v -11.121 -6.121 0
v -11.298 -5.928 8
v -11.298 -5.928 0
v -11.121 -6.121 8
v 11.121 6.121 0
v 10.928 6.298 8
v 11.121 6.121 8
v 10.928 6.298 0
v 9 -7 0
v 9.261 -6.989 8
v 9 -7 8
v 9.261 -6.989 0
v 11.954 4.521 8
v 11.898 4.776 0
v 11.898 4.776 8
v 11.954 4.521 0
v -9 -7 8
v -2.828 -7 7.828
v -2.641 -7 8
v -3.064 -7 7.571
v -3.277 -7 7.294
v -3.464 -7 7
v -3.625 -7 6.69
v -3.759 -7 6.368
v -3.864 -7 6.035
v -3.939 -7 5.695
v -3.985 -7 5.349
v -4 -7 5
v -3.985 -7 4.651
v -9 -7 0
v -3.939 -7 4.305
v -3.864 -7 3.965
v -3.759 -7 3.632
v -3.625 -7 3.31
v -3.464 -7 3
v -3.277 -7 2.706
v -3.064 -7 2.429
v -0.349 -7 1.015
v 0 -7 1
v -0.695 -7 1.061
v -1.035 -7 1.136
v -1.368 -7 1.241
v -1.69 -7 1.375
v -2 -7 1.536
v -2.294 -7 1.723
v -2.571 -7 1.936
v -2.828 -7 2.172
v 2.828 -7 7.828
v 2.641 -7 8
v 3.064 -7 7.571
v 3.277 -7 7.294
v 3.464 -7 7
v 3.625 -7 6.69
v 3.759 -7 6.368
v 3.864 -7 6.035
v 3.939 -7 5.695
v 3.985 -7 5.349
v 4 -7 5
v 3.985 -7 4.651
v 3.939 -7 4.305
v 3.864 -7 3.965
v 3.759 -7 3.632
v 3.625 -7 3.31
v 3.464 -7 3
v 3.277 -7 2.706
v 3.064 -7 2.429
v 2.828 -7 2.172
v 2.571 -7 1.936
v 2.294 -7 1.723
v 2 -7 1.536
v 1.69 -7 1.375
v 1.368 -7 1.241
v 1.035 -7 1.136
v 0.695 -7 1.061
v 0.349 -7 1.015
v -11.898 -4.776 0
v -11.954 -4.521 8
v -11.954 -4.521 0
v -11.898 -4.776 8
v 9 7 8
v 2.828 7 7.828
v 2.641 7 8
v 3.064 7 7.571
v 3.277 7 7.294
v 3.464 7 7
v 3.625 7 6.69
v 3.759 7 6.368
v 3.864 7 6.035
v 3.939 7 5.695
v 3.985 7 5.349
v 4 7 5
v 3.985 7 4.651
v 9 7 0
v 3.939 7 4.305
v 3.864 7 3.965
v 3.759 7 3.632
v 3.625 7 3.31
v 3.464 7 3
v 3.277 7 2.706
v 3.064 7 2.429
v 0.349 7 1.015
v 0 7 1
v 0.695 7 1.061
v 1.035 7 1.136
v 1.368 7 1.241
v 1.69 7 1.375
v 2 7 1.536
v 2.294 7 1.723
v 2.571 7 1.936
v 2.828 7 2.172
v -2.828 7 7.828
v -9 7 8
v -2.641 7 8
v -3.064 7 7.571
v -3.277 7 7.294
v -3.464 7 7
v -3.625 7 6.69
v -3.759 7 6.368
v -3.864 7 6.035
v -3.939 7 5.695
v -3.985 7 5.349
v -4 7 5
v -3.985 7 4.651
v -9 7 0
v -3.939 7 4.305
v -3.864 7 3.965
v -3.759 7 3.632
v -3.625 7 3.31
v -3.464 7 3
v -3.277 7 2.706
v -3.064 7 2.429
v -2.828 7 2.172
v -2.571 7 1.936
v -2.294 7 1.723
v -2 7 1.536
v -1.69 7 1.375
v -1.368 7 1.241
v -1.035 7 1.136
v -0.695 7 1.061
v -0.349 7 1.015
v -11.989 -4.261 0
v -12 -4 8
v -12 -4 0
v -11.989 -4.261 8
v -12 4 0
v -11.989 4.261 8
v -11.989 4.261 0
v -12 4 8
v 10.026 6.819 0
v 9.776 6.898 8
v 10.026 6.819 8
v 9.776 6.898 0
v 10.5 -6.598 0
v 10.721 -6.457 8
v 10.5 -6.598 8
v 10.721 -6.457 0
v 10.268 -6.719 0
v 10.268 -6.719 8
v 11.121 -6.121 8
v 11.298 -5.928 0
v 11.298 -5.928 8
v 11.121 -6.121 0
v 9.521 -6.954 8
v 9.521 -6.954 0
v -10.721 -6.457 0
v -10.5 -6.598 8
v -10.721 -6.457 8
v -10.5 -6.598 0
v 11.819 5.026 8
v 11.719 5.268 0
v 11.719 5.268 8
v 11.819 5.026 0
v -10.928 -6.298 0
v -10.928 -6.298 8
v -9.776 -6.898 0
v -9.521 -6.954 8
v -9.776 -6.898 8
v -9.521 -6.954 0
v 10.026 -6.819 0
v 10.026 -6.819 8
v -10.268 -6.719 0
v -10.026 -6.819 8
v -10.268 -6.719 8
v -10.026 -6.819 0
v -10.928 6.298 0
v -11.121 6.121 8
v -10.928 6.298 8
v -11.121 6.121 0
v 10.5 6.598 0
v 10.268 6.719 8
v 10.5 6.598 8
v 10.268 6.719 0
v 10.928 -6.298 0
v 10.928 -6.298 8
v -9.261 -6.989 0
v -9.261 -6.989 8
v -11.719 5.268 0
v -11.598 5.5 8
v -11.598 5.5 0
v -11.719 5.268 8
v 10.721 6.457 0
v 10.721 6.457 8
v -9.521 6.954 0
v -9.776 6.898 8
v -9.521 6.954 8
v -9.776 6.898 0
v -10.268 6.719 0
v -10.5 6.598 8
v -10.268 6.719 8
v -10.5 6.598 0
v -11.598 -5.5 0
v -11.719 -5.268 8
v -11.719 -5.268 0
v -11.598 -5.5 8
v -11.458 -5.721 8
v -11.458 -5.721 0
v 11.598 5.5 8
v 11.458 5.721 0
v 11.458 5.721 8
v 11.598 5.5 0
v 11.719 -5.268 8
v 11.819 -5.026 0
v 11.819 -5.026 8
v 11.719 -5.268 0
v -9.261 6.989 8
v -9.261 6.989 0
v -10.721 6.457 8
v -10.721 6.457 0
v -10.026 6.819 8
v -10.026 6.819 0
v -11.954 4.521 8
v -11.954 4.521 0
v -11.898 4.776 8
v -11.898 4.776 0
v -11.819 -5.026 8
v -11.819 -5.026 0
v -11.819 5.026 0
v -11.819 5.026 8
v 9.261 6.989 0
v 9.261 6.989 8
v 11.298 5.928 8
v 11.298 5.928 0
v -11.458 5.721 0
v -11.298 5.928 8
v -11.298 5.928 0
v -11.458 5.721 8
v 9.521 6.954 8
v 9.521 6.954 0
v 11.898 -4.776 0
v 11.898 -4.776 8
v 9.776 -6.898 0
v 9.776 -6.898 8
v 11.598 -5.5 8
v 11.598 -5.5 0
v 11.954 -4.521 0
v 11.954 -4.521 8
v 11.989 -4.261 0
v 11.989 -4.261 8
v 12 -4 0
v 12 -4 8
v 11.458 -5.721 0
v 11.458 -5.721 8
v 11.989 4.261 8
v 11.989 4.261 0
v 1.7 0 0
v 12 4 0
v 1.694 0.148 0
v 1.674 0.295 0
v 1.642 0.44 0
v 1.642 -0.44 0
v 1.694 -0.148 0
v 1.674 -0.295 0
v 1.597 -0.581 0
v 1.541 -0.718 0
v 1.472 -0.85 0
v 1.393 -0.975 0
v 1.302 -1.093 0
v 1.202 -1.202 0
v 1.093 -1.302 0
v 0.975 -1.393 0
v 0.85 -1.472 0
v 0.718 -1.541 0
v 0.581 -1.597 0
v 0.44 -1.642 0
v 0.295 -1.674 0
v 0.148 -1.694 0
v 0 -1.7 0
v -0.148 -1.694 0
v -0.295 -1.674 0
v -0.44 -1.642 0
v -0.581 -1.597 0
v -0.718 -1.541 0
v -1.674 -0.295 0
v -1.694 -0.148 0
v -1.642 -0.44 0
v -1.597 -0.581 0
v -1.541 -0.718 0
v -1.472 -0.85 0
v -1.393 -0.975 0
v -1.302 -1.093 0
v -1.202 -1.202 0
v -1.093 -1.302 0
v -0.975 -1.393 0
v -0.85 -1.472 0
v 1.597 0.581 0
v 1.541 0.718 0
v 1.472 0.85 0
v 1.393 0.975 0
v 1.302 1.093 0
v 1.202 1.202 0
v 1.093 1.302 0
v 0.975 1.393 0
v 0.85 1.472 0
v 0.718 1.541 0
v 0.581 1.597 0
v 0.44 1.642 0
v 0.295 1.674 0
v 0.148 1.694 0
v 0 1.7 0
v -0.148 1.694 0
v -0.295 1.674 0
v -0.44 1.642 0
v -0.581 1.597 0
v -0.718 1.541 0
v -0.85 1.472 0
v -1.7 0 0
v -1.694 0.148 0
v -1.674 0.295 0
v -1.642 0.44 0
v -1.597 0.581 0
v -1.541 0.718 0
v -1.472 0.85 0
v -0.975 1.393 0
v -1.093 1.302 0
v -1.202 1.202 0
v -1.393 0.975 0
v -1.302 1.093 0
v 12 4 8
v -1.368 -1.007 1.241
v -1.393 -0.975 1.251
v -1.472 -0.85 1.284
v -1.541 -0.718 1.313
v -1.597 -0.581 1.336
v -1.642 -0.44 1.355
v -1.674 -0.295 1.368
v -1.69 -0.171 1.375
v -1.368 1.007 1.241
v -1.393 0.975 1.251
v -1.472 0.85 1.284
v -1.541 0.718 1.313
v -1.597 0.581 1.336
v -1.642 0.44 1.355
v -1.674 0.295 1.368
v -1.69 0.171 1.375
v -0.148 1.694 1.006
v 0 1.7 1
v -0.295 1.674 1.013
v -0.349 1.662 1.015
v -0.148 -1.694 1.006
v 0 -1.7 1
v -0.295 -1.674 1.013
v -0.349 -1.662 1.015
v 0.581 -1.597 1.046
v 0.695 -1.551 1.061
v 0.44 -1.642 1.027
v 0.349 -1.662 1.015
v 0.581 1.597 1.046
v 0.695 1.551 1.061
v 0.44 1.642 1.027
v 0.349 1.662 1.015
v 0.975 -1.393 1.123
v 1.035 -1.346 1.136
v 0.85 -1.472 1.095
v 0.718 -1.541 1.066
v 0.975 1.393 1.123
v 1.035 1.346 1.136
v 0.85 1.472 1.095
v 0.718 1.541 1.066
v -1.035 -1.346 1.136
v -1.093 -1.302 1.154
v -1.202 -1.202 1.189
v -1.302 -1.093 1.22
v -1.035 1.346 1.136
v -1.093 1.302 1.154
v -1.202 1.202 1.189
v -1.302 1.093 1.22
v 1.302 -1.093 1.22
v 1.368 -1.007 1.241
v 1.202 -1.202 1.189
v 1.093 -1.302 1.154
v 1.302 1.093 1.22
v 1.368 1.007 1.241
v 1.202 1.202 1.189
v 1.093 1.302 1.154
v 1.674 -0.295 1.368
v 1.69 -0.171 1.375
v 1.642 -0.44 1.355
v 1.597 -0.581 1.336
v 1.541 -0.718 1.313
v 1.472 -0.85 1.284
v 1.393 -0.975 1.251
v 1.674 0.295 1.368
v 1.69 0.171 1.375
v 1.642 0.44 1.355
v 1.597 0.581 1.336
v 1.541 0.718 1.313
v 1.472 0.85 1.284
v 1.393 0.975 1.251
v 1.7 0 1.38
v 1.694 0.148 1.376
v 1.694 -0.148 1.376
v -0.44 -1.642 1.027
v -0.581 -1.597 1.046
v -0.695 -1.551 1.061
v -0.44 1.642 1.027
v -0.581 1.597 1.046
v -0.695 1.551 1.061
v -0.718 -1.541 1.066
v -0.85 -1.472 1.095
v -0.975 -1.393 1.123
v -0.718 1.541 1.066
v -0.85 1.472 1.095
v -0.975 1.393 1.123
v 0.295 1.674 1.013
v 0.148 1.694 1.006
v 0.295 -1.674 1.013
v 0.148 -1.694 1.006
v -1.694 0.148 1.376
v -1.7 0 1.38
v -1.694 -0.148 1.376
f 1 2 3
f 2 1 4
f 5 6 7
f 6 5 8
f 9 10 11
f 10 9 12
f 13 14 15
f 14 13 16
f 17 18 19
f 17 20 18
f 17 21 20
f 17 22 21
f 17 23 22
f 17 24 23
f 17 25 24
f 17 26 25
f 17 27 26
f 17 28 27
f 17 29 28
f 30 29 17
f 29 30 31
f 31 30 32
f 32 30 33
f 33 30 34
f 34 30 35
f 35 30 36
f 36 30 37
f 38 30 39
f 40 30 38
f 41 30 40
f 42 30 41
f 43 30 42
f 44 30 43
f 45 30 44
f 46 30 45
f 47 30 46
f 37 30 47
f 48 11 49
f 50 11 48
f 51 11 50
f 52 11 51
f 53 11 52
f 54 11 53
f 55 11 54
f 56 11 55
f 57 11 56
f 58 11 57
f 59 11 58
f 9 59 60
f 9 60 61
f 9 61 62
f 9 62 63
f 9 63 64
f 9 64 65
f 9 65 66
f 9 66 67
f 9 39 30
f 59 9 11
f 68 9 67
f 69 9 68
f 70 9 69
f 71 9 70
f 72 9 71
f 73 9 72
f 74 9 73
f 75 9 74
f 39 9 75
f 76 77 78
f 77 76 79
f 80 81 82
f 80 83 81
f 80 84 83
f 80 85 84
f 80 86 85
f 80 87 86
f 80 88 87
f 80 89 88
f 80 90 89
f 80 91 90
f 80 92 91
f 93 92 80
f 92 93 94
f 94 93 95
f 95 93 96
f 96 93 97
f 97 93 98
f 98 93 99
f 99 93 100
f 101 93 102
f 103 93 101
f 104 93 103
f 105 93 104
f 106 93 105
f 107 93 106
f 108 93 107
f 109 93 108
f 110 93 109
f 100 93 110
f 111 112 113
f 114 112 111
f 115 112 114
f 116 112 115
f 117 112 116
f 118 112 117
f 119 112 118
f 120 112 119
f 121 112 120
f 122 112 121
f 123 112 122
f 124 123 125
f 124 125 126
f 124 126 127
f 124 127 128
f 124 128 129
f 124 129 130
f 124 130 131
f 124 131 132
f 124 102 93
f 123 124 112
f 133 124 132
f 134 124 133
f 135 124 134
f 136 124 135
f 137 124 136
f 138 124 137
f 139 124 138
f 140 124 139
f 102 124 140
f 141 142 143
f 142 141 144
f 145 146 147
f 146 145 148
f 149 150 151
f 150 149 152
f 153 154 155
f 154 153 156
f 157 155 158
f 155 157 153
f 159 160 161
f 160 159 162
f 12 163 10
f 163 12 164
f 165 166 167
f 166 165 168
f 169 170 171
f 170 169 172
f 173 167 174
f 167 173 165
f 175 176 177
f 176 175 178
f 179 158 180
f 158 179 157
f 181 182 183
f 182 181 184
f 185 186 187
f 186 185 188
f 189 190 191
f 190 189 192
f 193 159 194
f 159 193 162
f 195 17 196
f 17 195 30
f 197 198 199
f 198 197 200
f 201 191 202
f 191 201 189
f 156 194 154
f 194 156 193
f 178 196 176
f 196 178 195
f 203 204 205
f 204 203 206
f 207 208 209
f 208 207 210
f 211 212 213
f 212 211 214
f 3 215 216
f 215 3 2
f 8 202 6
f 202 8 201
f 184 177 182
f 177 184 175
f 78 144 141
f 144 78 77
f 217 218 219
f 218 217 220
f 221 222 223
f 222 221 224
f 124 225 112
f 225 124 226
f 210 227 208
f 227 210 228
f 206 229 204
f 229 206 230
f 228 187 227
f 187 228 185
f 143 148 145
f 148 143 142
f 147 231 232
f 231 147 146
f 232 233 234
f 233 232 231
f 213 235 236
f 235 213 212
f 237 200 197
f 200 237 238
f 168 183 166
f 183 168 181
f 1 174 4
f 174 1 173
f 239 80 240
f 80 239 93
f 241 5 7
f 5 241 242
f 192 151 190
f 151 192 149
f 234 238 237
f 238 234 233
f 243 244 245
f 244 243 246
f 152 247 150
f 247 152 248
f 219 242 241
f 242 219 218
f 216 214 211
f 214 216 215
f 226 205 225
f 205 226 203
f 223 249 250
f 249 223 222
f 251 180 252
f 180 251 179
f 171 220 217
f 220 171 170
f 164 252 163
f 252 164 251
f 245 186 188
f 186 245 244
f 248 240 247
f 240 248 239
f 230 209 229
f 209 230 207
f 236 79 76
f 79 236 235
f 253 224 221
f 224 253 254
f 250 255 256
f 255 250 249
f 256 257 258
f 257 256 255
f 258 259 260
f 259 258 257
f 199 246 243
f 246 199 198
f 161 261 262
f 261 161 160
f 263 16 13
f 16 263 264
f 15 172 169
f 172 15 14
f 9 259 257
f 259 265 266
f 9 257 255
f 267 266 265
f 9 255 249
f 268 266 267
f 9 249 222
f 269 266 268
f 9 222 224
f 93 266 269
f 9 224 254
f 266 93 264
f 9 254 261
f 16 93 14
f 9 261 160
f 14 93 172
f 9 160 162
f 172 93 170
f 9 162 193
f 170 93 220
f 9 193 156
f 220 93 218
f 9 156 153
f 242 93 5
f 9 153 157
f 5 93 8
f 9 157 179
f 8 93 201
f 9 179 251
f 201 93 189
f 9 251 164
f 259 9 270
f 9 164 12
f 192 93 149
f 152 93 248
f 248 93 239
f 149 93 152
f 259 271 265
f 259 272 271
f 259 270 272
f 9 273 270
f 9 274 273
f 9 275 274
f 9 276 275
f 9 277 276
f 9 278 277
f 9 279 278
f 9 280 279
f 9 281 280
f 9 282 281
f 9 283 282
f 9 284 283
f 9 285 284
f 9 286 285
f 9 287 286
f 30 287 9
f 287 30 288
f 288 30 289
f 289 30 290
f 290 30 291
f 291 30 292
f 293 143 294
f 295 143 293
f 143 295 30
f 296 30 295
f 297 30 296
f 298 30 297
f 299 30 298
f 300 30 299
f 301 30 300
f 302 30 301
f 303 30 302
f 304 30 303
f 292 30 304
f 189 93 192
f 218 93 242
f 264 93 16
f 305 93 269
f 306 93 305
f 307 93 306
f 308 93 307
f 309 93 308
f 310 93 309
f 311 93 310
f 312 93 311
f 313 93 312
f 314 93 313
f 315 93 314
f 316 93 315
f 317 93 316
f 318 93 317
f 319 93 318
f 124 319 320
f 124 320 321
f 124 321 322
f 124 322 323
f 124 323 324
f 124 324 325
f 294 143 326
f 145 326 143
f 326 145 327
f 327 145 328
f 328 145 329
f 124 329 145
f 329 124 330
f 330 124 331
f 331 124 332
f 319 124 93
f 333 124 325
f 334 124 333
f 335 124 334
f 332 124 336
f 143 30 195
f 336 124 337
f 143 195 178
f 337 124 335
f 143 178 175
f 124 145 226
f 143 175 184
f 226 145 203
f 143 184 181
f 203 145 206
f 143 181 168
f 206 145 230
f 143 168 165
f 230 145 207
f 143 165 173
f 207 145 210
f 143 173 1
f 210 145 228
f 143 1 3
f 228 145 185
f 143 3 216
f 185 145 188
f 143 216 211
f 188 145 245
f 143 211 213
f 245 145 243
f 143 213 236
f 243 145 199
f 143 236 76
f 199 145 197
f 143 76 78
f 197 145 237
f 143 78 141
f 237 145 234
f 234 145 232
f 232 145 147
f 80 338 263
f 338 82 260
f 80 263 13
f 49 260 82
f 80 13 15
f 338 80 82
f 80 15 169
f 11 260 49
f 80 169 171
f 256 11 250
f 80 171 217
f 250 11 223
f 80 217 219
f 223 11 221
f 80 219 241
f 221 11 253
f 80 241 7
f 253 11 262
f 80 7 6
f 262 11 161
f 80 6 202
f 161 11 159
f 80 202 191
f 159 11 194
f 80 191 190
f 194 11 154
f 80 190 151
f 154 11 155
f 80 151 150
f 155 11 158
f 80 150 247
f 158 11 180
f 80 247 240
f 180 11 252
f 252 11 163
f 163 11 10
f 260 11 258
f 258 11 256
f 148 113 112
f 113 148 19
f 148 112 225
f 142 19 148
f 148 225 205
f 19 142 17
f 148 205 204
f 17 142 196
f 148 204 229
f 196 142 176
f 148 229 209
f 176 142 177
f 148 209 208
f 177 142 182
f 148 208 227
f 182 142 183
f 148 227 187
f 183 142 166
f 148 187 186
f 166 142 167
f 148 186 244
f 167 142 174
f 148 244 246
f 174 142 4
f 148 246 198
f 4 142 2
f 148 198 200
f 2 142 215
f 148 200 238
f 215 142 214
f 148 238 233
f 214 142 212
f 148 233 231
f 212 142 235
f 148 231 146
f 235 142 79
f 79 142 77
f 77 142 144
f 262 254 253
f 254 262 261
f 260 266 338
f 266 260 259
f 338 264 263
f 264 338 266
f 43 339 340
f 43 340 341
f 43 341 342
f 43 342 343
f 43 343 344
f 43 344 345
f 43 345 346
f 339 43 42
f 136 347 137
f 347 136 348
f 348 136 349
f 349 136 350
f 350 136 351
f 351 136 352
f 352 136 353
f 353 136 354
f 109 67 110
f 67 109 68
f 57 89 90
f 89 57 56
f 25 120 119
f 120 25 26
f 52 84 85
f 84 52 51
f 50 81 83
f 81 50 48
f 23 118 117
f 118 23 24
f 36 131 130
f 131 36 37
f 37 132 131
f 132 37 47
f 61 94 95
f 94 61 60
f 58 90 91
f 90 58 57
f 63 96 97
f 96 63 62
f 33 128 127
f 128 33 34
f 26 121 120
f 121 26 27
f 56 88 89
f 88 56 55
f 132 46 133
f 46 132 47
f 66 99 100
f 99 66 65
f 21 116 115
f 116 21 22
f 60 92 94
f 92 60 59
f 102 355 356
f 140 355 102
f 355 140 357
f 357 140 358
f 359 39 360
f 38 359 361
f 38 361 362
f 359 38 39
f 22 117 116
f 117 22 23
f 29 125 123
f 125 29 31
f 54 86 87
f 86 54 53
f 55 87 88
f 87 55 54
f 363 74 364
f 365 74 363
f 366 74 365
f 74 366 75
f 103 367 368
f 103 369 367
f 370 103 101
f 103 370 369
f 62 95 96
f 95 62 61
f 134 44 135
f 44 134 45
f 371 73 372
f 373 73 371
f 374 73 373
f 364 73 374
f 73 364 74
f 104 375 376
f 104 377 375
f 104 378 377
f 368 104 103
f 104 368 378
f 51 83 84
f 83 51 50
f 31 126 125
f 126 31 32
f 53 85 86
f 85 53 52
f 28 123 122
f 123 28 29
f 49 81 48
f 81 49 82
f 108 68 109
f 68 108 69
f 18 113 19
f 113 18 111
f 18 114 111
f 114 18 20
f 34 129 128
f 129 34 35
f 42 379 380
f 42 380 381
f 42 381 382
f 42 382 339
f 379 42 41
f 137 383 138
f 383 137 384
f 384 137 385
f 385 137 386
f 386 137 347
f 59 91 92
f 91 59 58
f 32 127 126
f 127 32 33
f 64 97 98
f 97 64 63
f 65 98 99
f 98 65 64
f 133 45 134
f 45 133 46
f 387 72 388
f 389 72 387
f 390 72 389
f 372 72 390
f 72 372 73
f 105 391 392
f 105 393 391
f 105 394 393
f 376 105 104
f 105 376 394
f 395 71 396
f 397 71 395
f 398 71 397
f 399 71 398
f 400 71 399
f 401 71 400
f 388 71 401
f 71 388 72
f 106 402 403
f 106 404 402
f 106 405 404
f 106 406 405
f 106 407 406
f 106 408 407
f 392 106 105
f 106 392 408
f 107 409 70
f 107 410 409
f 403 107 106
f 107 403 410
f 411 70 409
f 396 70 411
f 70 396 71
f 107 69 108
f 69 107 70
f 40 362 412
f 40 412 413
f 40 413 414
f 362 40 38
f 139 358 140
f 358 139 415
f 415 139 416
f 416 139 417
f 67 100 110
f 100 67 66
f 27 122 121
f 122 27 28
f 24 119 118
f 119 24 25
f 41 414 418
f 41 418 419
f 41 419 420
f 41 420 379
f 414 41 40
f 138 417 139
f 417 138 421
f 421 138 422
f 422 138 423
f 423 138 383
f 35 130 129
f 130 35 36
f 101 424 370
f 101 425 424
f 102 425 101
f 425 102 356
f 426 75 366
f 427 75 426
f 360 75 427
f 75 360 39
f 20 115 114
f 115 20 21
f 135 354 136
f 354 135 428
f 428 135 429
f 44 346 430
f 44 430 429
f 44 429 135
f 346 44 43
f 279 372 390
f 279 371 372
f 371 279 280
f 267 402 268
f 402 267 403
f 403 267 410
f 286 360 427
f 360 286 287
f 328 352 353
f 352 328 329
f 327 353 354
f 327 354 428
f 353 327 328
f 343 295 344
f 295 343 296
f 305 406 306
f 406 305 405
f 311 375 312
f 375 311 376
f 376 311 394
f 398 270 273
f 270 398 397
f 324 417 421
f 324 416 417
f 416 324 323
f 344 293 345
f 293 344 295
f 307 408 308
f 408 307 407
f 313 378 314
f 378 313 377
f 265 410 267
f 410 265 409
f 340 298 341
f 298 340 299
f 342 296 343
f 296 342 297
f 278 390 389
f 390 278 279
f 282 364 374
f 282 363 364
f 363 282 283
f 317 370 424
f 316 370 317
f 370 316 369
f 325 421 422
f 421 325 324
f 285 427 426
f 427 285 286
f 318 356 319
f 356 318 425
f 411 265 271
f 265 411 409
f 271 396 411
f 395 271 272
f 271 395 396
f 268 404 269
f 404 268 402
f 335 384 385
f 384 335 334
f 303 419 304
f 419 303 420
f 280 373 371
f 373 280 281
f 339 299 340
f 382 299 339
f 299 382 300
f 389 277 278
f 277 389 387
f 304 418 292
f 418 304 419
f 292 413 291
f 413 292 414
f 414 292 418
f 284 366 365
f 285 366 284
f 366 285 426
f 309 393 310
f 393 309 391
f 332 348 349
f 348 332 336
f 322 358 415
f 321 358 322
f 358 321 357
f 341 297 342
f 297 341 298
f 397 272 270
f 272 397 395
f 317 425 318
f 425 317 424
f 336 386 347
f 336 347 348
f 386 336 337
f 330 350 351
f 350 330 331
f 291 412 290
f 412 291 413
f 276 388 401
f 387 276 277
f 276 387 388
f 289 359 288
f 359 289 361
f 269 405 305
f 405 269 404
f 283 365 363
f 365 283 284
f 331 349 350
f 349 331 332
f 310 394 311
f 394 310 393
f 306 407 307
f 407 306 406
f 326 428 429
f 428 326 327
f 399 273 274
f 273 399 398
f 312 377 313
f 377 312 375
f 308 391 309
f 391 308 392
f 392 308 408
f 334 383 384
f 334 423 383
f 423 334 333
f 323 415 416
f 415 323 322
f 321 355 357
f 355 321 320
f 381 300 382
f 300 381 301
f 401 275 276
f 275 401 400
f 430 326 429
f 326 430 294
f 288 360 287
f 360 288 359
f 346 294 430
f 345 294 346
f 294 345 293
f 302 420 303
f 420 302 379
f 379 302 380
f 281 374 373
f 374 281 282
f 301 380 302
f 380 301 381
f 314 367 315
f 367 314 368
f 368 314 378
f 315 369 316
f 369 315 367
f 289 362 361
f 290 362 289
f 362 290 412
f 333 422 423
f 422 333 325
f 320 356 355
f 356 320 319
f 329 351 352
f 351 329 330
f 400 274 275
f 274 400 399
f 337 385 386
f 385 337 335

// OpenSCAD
// file: woli_config.scad
// ============================================================
// WOLI V1.1 AUDITED FINAL — MASTER PARAMETERS
// Units: mm
// ============================================================

$fn = 72;

// ---------- GLOBAL ----------
fit_clearance = 0.40;
wall = 3.0;
floor_t = 5.0;
cover_t = 2.8;
shell_r = 10.0;

m3_clear = 3.4;
m3_pilot_d = 2.8;
m3_pilot_depth = 4.2;

tie_slot_w = 3.8;
tie_slot_l = 18;

// ---------- BODY ----------
body_w = 170;
body_l = 90;
chassis_h = 31;
top_h = 34;

top_upper_w = 162;
top_upper_l = 80;
top_upper_r = 9;

// ---------- N20 DRIVE ----------
wheel_d = 43;
wheel_w = 17.5;

n20_x = 12;
n20_y = 33;
n20_z = 10;

n20_bracket_x = 25;
n20_bracket_y = 8.5;
n20_bracket_z = 11.5;
n20_bracket_hole_cc = 17;      // approx; slots absorb error

wheel_axis_ground_z = wheel_d/2; // reference only; actual chassis ground plane requires hardware check
wheel_opening_l = 25;            // side wheel cutout depth (Y), mm
motor_y = -body_l/2 + body_l/3;  // wheel center: 1/3 body depth in from front (-Y)
motor_slot_len = 8;
motor_bracket_zone_x = body_w/2 - 18;

// ---------- BALL CASTER ----------
caster_w = 22;
caster_l = 17;
caster_h = 15;
caster_ball_d_visual_ref = 11.5; // photo-only reference; not used for fit
caster_dock_y = body_l/2 - 21;

caster_body_clear = 0.7;
caster_retainer_t = 3.0;
caster_retainer_screw_cc = 27;

caster_mount_x = 15;
caster_mount_y = 12;
caster_floor_open = 18.5;

// ---------- MAIN PCB ----------
pcb_w = 50;
pcb_l = 70;
pcb_stack_h = 15;

pcb_tray_w = 56;
pcb_tray_l = 76;
pcb_mount_cc_x = 44;
pcb_mount_cc_y = 64;

// ---------- MG90S ----------
servo_a = 32.4;
servo_b = 32.5;
servo_c = 12;
servo_fit = 0.7;

// ---------- LIMIT SWITCH ----------
limit_w = 21;
limit_l = 23;
limit_h = 6;

// ---------- VL53L0X ----------
tof_w = 10.7;
tof_l = 25;
tof_h = 11.5;
tof_rail_clear = 0.7;

tof_bezel_w = 34;
tof_bezel_h = 19;

// ---------- PHONE HOLDER / NECK ----------
phone_ball_d = 18.0;            // physical socket fit still required
neck_h = 30;
neck_base_w = 54;
neck_base_l = 42;
neck_base_h = 5;
neck_hole_x = 38;
neck_hole_y = 26;

neck_recess_w = 62;
neck_recess_l = 50;
neck_recess_d = 1.2;

neck_pilot_d = 2.8;
neck_pilot_depth = 7.0;

// reference phone clearance envelope only
phone_ref_w = 165;
phone_ref_h = 82;
phone_ref_t = 12;

// ---------- KLIFE PD-Q2 BATTERY ----------
battery_w = 68;
battery_l = 143;
battery_h = 11;
battery_mass_g = 205;

battery_fit_clear = 0.8;
battery_tray_w = 84;
battery_tray_l = 146;
battery_tray_t = 2.4;
battery_rail_t = 2.5;
battery_rail_h = 5.5;
battery_center_y = -18;

battery_tray_mount_x = 39;
battery_tray_mount_y = 55;

// ---------- UPPER ELECTRONICS DECK ----------
bridge_w = 122;
bridge_l = 94;
bridge_t = 3.0;
bridge_leg_h = 20;
bridge_leg_x = 56;
bridge_leg_y = 36;

module_boss_h = 4.5;
module_boss_d = 8.0;
module_pilot_d = 2.8;

pcb_deck_cx = -25;
pcb_deck_cy = 0;

tb_deck_cx = 34;
tb_deck_cy = 17;

usbc_deck_cx = 36;
usbc_deck_cy = -24;

// ---------- TB6612FNG HW-166 ----------
tb6612_w = 26;
tb6612_l = 26;
tb6612_clear = 0.6;

// total installed height is intentionally not hard-coded

// ---------- USB-C BREAKOUT ----------
usbc_board_w = 12;
usbc_board_l = 15;
usbc_connector_h = 4.2;
usbc_clear = 0.6;

// ---------- TOP COVER INTERFACE ----------
cover_skirt_depth = 4.0;
cover_skirt_clear = 0.8;
cover_skirt_t = 2.5;

cover_side_screw_y = 55 * body_l / 190;
cover_side_screw_z = -2.5;

rear_service_w = 42;
rear_service_h = 14;
rear_hatch_screw_x = 19;
rear_hatch_center_z = 10;

// ---------- CABLE MANAGEMENT ----------
cable_bridge_w = 24;
cable_bridge_l = 14;
cable_bridge_h = 8;
cable_bridge_channel = 8;

// ---------- SERVO LOCK FRAMEWORK ----------
lock_angle_deg = 90;
unlock_angle_deg = 10;

lock_plate_d = 28;
lock_arm_w = 10;
lock_arm_t = 4.0;
lock_reach = 22;
lock_tip_d = 10;

horn_center_clear_d = 7.0;
horn_slot_d = 2.4;              // physical stock-horn check required
horn_slot_len = 8.0;
horn_slot_radius = 8.0;

lock_pad_t = 2.0;
lock_pad_d = 11.0;
// file: woli_lib.scad
include <woli_config.scad>;

module rr2d(w,l,r){
    offset(r=r) square([w-2*r,l-2*r], center=true);
}

module rplate(w,l,h,r){
    linear_extrude(height=h) rr2d(w,l,r);
}

module rshell(w,l,h,r,t,bottom){
    difference(){
        rplate(w,l,h,r);
        translate([0,0,bottom])
            rplate(w-2*t,l-2*t,h,r-t);
    }
}

module slot2d(len,d){
    hull(){
        translate([-len/2,0]) circle(d=d);
        translate([ len/2,0]) circle(d=d);
    }
}

module slot3d(len,d,h){
    linear_extrude(height=h) slot2d(len,d);
}

module tie_slot(h=5){
    rplate(tie_slot_w,tie_slot_l,h,1.2);
}

module body_screw_pattern(h=20){
    for(x=[-screw_x,screw_x])
        for(y=[-screw_y,screw_y])
            translate([x,y,-1])
                cylinder(h=h,d=m3_clear);
}

module body_bosses(h=20){
    for(x=[-screw_x,screw_x])
        for(y=[-screw_y,screw_y])
            translate([x,y,0])
                cylinder(h=h,d=m3_boss_d);
}


// Closed-top shell for removable upper cover.
// Leaves the underside open and preserves a roof thickness.
module top_shell(w,l,h,r,t){
    difference(){
        rplate(w,l,h,r);
        translate([0,0,-0.1])
            rplate(w-2*t,l-2*t,h-t+0.1,r-t);
    }
}


// Tapered rounded solid built from two rounded plates.
// Useful for product-like enclosure shoulders.
module tapered_rounded_solid(w0,l0,w1,l1,h,r0,r1){
    hull(){
        rplate(w0,l0,0.8,r0);
        translate([0,0,h-0.8])
            rplate(w1,l1,0.8,r1);
    }
}

// Open-bottom tapered cover with closed roof.
module tapered_top_shell(w0,l0,w1,l1,h,r0,r1,t){
    difference(){
        tapered_rounded_solid(w0,l0,w1,l1,h,r0,r1);
        translate([0,0,-0.1])
            tapered_rounded_solid(
                w0-2*t,l0-2*t,
                w1-2*t,l1-2*t,
                h-t+0.1,
                max(r0-t,1),max(r1-t,1)
            );
    }
}
// main file
include <woli_lib.scad>;

// ============================================================
// 20 CABLE BRIDGE V0.5
// Low-profile screw-down cable retainer.
// Keeps motor/sensor wires away from wheel/servo motion.
// ============================================================

difference(){
    rplate(cable_bridge_w,cable_bridge_l,cable_bridge_h,3);

    // horizontal cable channel
    translate([0,0,cable_bridge_h/2+1])
        rotate([90,0,0])
            cylinder(h=cable_bridge_l+2,d=cable_bridge_channel,center=true);

    // M3 fixing hole
    translate([0,0,-0.1])
        cylinder(h=3.3,d=m3_clear);
}
